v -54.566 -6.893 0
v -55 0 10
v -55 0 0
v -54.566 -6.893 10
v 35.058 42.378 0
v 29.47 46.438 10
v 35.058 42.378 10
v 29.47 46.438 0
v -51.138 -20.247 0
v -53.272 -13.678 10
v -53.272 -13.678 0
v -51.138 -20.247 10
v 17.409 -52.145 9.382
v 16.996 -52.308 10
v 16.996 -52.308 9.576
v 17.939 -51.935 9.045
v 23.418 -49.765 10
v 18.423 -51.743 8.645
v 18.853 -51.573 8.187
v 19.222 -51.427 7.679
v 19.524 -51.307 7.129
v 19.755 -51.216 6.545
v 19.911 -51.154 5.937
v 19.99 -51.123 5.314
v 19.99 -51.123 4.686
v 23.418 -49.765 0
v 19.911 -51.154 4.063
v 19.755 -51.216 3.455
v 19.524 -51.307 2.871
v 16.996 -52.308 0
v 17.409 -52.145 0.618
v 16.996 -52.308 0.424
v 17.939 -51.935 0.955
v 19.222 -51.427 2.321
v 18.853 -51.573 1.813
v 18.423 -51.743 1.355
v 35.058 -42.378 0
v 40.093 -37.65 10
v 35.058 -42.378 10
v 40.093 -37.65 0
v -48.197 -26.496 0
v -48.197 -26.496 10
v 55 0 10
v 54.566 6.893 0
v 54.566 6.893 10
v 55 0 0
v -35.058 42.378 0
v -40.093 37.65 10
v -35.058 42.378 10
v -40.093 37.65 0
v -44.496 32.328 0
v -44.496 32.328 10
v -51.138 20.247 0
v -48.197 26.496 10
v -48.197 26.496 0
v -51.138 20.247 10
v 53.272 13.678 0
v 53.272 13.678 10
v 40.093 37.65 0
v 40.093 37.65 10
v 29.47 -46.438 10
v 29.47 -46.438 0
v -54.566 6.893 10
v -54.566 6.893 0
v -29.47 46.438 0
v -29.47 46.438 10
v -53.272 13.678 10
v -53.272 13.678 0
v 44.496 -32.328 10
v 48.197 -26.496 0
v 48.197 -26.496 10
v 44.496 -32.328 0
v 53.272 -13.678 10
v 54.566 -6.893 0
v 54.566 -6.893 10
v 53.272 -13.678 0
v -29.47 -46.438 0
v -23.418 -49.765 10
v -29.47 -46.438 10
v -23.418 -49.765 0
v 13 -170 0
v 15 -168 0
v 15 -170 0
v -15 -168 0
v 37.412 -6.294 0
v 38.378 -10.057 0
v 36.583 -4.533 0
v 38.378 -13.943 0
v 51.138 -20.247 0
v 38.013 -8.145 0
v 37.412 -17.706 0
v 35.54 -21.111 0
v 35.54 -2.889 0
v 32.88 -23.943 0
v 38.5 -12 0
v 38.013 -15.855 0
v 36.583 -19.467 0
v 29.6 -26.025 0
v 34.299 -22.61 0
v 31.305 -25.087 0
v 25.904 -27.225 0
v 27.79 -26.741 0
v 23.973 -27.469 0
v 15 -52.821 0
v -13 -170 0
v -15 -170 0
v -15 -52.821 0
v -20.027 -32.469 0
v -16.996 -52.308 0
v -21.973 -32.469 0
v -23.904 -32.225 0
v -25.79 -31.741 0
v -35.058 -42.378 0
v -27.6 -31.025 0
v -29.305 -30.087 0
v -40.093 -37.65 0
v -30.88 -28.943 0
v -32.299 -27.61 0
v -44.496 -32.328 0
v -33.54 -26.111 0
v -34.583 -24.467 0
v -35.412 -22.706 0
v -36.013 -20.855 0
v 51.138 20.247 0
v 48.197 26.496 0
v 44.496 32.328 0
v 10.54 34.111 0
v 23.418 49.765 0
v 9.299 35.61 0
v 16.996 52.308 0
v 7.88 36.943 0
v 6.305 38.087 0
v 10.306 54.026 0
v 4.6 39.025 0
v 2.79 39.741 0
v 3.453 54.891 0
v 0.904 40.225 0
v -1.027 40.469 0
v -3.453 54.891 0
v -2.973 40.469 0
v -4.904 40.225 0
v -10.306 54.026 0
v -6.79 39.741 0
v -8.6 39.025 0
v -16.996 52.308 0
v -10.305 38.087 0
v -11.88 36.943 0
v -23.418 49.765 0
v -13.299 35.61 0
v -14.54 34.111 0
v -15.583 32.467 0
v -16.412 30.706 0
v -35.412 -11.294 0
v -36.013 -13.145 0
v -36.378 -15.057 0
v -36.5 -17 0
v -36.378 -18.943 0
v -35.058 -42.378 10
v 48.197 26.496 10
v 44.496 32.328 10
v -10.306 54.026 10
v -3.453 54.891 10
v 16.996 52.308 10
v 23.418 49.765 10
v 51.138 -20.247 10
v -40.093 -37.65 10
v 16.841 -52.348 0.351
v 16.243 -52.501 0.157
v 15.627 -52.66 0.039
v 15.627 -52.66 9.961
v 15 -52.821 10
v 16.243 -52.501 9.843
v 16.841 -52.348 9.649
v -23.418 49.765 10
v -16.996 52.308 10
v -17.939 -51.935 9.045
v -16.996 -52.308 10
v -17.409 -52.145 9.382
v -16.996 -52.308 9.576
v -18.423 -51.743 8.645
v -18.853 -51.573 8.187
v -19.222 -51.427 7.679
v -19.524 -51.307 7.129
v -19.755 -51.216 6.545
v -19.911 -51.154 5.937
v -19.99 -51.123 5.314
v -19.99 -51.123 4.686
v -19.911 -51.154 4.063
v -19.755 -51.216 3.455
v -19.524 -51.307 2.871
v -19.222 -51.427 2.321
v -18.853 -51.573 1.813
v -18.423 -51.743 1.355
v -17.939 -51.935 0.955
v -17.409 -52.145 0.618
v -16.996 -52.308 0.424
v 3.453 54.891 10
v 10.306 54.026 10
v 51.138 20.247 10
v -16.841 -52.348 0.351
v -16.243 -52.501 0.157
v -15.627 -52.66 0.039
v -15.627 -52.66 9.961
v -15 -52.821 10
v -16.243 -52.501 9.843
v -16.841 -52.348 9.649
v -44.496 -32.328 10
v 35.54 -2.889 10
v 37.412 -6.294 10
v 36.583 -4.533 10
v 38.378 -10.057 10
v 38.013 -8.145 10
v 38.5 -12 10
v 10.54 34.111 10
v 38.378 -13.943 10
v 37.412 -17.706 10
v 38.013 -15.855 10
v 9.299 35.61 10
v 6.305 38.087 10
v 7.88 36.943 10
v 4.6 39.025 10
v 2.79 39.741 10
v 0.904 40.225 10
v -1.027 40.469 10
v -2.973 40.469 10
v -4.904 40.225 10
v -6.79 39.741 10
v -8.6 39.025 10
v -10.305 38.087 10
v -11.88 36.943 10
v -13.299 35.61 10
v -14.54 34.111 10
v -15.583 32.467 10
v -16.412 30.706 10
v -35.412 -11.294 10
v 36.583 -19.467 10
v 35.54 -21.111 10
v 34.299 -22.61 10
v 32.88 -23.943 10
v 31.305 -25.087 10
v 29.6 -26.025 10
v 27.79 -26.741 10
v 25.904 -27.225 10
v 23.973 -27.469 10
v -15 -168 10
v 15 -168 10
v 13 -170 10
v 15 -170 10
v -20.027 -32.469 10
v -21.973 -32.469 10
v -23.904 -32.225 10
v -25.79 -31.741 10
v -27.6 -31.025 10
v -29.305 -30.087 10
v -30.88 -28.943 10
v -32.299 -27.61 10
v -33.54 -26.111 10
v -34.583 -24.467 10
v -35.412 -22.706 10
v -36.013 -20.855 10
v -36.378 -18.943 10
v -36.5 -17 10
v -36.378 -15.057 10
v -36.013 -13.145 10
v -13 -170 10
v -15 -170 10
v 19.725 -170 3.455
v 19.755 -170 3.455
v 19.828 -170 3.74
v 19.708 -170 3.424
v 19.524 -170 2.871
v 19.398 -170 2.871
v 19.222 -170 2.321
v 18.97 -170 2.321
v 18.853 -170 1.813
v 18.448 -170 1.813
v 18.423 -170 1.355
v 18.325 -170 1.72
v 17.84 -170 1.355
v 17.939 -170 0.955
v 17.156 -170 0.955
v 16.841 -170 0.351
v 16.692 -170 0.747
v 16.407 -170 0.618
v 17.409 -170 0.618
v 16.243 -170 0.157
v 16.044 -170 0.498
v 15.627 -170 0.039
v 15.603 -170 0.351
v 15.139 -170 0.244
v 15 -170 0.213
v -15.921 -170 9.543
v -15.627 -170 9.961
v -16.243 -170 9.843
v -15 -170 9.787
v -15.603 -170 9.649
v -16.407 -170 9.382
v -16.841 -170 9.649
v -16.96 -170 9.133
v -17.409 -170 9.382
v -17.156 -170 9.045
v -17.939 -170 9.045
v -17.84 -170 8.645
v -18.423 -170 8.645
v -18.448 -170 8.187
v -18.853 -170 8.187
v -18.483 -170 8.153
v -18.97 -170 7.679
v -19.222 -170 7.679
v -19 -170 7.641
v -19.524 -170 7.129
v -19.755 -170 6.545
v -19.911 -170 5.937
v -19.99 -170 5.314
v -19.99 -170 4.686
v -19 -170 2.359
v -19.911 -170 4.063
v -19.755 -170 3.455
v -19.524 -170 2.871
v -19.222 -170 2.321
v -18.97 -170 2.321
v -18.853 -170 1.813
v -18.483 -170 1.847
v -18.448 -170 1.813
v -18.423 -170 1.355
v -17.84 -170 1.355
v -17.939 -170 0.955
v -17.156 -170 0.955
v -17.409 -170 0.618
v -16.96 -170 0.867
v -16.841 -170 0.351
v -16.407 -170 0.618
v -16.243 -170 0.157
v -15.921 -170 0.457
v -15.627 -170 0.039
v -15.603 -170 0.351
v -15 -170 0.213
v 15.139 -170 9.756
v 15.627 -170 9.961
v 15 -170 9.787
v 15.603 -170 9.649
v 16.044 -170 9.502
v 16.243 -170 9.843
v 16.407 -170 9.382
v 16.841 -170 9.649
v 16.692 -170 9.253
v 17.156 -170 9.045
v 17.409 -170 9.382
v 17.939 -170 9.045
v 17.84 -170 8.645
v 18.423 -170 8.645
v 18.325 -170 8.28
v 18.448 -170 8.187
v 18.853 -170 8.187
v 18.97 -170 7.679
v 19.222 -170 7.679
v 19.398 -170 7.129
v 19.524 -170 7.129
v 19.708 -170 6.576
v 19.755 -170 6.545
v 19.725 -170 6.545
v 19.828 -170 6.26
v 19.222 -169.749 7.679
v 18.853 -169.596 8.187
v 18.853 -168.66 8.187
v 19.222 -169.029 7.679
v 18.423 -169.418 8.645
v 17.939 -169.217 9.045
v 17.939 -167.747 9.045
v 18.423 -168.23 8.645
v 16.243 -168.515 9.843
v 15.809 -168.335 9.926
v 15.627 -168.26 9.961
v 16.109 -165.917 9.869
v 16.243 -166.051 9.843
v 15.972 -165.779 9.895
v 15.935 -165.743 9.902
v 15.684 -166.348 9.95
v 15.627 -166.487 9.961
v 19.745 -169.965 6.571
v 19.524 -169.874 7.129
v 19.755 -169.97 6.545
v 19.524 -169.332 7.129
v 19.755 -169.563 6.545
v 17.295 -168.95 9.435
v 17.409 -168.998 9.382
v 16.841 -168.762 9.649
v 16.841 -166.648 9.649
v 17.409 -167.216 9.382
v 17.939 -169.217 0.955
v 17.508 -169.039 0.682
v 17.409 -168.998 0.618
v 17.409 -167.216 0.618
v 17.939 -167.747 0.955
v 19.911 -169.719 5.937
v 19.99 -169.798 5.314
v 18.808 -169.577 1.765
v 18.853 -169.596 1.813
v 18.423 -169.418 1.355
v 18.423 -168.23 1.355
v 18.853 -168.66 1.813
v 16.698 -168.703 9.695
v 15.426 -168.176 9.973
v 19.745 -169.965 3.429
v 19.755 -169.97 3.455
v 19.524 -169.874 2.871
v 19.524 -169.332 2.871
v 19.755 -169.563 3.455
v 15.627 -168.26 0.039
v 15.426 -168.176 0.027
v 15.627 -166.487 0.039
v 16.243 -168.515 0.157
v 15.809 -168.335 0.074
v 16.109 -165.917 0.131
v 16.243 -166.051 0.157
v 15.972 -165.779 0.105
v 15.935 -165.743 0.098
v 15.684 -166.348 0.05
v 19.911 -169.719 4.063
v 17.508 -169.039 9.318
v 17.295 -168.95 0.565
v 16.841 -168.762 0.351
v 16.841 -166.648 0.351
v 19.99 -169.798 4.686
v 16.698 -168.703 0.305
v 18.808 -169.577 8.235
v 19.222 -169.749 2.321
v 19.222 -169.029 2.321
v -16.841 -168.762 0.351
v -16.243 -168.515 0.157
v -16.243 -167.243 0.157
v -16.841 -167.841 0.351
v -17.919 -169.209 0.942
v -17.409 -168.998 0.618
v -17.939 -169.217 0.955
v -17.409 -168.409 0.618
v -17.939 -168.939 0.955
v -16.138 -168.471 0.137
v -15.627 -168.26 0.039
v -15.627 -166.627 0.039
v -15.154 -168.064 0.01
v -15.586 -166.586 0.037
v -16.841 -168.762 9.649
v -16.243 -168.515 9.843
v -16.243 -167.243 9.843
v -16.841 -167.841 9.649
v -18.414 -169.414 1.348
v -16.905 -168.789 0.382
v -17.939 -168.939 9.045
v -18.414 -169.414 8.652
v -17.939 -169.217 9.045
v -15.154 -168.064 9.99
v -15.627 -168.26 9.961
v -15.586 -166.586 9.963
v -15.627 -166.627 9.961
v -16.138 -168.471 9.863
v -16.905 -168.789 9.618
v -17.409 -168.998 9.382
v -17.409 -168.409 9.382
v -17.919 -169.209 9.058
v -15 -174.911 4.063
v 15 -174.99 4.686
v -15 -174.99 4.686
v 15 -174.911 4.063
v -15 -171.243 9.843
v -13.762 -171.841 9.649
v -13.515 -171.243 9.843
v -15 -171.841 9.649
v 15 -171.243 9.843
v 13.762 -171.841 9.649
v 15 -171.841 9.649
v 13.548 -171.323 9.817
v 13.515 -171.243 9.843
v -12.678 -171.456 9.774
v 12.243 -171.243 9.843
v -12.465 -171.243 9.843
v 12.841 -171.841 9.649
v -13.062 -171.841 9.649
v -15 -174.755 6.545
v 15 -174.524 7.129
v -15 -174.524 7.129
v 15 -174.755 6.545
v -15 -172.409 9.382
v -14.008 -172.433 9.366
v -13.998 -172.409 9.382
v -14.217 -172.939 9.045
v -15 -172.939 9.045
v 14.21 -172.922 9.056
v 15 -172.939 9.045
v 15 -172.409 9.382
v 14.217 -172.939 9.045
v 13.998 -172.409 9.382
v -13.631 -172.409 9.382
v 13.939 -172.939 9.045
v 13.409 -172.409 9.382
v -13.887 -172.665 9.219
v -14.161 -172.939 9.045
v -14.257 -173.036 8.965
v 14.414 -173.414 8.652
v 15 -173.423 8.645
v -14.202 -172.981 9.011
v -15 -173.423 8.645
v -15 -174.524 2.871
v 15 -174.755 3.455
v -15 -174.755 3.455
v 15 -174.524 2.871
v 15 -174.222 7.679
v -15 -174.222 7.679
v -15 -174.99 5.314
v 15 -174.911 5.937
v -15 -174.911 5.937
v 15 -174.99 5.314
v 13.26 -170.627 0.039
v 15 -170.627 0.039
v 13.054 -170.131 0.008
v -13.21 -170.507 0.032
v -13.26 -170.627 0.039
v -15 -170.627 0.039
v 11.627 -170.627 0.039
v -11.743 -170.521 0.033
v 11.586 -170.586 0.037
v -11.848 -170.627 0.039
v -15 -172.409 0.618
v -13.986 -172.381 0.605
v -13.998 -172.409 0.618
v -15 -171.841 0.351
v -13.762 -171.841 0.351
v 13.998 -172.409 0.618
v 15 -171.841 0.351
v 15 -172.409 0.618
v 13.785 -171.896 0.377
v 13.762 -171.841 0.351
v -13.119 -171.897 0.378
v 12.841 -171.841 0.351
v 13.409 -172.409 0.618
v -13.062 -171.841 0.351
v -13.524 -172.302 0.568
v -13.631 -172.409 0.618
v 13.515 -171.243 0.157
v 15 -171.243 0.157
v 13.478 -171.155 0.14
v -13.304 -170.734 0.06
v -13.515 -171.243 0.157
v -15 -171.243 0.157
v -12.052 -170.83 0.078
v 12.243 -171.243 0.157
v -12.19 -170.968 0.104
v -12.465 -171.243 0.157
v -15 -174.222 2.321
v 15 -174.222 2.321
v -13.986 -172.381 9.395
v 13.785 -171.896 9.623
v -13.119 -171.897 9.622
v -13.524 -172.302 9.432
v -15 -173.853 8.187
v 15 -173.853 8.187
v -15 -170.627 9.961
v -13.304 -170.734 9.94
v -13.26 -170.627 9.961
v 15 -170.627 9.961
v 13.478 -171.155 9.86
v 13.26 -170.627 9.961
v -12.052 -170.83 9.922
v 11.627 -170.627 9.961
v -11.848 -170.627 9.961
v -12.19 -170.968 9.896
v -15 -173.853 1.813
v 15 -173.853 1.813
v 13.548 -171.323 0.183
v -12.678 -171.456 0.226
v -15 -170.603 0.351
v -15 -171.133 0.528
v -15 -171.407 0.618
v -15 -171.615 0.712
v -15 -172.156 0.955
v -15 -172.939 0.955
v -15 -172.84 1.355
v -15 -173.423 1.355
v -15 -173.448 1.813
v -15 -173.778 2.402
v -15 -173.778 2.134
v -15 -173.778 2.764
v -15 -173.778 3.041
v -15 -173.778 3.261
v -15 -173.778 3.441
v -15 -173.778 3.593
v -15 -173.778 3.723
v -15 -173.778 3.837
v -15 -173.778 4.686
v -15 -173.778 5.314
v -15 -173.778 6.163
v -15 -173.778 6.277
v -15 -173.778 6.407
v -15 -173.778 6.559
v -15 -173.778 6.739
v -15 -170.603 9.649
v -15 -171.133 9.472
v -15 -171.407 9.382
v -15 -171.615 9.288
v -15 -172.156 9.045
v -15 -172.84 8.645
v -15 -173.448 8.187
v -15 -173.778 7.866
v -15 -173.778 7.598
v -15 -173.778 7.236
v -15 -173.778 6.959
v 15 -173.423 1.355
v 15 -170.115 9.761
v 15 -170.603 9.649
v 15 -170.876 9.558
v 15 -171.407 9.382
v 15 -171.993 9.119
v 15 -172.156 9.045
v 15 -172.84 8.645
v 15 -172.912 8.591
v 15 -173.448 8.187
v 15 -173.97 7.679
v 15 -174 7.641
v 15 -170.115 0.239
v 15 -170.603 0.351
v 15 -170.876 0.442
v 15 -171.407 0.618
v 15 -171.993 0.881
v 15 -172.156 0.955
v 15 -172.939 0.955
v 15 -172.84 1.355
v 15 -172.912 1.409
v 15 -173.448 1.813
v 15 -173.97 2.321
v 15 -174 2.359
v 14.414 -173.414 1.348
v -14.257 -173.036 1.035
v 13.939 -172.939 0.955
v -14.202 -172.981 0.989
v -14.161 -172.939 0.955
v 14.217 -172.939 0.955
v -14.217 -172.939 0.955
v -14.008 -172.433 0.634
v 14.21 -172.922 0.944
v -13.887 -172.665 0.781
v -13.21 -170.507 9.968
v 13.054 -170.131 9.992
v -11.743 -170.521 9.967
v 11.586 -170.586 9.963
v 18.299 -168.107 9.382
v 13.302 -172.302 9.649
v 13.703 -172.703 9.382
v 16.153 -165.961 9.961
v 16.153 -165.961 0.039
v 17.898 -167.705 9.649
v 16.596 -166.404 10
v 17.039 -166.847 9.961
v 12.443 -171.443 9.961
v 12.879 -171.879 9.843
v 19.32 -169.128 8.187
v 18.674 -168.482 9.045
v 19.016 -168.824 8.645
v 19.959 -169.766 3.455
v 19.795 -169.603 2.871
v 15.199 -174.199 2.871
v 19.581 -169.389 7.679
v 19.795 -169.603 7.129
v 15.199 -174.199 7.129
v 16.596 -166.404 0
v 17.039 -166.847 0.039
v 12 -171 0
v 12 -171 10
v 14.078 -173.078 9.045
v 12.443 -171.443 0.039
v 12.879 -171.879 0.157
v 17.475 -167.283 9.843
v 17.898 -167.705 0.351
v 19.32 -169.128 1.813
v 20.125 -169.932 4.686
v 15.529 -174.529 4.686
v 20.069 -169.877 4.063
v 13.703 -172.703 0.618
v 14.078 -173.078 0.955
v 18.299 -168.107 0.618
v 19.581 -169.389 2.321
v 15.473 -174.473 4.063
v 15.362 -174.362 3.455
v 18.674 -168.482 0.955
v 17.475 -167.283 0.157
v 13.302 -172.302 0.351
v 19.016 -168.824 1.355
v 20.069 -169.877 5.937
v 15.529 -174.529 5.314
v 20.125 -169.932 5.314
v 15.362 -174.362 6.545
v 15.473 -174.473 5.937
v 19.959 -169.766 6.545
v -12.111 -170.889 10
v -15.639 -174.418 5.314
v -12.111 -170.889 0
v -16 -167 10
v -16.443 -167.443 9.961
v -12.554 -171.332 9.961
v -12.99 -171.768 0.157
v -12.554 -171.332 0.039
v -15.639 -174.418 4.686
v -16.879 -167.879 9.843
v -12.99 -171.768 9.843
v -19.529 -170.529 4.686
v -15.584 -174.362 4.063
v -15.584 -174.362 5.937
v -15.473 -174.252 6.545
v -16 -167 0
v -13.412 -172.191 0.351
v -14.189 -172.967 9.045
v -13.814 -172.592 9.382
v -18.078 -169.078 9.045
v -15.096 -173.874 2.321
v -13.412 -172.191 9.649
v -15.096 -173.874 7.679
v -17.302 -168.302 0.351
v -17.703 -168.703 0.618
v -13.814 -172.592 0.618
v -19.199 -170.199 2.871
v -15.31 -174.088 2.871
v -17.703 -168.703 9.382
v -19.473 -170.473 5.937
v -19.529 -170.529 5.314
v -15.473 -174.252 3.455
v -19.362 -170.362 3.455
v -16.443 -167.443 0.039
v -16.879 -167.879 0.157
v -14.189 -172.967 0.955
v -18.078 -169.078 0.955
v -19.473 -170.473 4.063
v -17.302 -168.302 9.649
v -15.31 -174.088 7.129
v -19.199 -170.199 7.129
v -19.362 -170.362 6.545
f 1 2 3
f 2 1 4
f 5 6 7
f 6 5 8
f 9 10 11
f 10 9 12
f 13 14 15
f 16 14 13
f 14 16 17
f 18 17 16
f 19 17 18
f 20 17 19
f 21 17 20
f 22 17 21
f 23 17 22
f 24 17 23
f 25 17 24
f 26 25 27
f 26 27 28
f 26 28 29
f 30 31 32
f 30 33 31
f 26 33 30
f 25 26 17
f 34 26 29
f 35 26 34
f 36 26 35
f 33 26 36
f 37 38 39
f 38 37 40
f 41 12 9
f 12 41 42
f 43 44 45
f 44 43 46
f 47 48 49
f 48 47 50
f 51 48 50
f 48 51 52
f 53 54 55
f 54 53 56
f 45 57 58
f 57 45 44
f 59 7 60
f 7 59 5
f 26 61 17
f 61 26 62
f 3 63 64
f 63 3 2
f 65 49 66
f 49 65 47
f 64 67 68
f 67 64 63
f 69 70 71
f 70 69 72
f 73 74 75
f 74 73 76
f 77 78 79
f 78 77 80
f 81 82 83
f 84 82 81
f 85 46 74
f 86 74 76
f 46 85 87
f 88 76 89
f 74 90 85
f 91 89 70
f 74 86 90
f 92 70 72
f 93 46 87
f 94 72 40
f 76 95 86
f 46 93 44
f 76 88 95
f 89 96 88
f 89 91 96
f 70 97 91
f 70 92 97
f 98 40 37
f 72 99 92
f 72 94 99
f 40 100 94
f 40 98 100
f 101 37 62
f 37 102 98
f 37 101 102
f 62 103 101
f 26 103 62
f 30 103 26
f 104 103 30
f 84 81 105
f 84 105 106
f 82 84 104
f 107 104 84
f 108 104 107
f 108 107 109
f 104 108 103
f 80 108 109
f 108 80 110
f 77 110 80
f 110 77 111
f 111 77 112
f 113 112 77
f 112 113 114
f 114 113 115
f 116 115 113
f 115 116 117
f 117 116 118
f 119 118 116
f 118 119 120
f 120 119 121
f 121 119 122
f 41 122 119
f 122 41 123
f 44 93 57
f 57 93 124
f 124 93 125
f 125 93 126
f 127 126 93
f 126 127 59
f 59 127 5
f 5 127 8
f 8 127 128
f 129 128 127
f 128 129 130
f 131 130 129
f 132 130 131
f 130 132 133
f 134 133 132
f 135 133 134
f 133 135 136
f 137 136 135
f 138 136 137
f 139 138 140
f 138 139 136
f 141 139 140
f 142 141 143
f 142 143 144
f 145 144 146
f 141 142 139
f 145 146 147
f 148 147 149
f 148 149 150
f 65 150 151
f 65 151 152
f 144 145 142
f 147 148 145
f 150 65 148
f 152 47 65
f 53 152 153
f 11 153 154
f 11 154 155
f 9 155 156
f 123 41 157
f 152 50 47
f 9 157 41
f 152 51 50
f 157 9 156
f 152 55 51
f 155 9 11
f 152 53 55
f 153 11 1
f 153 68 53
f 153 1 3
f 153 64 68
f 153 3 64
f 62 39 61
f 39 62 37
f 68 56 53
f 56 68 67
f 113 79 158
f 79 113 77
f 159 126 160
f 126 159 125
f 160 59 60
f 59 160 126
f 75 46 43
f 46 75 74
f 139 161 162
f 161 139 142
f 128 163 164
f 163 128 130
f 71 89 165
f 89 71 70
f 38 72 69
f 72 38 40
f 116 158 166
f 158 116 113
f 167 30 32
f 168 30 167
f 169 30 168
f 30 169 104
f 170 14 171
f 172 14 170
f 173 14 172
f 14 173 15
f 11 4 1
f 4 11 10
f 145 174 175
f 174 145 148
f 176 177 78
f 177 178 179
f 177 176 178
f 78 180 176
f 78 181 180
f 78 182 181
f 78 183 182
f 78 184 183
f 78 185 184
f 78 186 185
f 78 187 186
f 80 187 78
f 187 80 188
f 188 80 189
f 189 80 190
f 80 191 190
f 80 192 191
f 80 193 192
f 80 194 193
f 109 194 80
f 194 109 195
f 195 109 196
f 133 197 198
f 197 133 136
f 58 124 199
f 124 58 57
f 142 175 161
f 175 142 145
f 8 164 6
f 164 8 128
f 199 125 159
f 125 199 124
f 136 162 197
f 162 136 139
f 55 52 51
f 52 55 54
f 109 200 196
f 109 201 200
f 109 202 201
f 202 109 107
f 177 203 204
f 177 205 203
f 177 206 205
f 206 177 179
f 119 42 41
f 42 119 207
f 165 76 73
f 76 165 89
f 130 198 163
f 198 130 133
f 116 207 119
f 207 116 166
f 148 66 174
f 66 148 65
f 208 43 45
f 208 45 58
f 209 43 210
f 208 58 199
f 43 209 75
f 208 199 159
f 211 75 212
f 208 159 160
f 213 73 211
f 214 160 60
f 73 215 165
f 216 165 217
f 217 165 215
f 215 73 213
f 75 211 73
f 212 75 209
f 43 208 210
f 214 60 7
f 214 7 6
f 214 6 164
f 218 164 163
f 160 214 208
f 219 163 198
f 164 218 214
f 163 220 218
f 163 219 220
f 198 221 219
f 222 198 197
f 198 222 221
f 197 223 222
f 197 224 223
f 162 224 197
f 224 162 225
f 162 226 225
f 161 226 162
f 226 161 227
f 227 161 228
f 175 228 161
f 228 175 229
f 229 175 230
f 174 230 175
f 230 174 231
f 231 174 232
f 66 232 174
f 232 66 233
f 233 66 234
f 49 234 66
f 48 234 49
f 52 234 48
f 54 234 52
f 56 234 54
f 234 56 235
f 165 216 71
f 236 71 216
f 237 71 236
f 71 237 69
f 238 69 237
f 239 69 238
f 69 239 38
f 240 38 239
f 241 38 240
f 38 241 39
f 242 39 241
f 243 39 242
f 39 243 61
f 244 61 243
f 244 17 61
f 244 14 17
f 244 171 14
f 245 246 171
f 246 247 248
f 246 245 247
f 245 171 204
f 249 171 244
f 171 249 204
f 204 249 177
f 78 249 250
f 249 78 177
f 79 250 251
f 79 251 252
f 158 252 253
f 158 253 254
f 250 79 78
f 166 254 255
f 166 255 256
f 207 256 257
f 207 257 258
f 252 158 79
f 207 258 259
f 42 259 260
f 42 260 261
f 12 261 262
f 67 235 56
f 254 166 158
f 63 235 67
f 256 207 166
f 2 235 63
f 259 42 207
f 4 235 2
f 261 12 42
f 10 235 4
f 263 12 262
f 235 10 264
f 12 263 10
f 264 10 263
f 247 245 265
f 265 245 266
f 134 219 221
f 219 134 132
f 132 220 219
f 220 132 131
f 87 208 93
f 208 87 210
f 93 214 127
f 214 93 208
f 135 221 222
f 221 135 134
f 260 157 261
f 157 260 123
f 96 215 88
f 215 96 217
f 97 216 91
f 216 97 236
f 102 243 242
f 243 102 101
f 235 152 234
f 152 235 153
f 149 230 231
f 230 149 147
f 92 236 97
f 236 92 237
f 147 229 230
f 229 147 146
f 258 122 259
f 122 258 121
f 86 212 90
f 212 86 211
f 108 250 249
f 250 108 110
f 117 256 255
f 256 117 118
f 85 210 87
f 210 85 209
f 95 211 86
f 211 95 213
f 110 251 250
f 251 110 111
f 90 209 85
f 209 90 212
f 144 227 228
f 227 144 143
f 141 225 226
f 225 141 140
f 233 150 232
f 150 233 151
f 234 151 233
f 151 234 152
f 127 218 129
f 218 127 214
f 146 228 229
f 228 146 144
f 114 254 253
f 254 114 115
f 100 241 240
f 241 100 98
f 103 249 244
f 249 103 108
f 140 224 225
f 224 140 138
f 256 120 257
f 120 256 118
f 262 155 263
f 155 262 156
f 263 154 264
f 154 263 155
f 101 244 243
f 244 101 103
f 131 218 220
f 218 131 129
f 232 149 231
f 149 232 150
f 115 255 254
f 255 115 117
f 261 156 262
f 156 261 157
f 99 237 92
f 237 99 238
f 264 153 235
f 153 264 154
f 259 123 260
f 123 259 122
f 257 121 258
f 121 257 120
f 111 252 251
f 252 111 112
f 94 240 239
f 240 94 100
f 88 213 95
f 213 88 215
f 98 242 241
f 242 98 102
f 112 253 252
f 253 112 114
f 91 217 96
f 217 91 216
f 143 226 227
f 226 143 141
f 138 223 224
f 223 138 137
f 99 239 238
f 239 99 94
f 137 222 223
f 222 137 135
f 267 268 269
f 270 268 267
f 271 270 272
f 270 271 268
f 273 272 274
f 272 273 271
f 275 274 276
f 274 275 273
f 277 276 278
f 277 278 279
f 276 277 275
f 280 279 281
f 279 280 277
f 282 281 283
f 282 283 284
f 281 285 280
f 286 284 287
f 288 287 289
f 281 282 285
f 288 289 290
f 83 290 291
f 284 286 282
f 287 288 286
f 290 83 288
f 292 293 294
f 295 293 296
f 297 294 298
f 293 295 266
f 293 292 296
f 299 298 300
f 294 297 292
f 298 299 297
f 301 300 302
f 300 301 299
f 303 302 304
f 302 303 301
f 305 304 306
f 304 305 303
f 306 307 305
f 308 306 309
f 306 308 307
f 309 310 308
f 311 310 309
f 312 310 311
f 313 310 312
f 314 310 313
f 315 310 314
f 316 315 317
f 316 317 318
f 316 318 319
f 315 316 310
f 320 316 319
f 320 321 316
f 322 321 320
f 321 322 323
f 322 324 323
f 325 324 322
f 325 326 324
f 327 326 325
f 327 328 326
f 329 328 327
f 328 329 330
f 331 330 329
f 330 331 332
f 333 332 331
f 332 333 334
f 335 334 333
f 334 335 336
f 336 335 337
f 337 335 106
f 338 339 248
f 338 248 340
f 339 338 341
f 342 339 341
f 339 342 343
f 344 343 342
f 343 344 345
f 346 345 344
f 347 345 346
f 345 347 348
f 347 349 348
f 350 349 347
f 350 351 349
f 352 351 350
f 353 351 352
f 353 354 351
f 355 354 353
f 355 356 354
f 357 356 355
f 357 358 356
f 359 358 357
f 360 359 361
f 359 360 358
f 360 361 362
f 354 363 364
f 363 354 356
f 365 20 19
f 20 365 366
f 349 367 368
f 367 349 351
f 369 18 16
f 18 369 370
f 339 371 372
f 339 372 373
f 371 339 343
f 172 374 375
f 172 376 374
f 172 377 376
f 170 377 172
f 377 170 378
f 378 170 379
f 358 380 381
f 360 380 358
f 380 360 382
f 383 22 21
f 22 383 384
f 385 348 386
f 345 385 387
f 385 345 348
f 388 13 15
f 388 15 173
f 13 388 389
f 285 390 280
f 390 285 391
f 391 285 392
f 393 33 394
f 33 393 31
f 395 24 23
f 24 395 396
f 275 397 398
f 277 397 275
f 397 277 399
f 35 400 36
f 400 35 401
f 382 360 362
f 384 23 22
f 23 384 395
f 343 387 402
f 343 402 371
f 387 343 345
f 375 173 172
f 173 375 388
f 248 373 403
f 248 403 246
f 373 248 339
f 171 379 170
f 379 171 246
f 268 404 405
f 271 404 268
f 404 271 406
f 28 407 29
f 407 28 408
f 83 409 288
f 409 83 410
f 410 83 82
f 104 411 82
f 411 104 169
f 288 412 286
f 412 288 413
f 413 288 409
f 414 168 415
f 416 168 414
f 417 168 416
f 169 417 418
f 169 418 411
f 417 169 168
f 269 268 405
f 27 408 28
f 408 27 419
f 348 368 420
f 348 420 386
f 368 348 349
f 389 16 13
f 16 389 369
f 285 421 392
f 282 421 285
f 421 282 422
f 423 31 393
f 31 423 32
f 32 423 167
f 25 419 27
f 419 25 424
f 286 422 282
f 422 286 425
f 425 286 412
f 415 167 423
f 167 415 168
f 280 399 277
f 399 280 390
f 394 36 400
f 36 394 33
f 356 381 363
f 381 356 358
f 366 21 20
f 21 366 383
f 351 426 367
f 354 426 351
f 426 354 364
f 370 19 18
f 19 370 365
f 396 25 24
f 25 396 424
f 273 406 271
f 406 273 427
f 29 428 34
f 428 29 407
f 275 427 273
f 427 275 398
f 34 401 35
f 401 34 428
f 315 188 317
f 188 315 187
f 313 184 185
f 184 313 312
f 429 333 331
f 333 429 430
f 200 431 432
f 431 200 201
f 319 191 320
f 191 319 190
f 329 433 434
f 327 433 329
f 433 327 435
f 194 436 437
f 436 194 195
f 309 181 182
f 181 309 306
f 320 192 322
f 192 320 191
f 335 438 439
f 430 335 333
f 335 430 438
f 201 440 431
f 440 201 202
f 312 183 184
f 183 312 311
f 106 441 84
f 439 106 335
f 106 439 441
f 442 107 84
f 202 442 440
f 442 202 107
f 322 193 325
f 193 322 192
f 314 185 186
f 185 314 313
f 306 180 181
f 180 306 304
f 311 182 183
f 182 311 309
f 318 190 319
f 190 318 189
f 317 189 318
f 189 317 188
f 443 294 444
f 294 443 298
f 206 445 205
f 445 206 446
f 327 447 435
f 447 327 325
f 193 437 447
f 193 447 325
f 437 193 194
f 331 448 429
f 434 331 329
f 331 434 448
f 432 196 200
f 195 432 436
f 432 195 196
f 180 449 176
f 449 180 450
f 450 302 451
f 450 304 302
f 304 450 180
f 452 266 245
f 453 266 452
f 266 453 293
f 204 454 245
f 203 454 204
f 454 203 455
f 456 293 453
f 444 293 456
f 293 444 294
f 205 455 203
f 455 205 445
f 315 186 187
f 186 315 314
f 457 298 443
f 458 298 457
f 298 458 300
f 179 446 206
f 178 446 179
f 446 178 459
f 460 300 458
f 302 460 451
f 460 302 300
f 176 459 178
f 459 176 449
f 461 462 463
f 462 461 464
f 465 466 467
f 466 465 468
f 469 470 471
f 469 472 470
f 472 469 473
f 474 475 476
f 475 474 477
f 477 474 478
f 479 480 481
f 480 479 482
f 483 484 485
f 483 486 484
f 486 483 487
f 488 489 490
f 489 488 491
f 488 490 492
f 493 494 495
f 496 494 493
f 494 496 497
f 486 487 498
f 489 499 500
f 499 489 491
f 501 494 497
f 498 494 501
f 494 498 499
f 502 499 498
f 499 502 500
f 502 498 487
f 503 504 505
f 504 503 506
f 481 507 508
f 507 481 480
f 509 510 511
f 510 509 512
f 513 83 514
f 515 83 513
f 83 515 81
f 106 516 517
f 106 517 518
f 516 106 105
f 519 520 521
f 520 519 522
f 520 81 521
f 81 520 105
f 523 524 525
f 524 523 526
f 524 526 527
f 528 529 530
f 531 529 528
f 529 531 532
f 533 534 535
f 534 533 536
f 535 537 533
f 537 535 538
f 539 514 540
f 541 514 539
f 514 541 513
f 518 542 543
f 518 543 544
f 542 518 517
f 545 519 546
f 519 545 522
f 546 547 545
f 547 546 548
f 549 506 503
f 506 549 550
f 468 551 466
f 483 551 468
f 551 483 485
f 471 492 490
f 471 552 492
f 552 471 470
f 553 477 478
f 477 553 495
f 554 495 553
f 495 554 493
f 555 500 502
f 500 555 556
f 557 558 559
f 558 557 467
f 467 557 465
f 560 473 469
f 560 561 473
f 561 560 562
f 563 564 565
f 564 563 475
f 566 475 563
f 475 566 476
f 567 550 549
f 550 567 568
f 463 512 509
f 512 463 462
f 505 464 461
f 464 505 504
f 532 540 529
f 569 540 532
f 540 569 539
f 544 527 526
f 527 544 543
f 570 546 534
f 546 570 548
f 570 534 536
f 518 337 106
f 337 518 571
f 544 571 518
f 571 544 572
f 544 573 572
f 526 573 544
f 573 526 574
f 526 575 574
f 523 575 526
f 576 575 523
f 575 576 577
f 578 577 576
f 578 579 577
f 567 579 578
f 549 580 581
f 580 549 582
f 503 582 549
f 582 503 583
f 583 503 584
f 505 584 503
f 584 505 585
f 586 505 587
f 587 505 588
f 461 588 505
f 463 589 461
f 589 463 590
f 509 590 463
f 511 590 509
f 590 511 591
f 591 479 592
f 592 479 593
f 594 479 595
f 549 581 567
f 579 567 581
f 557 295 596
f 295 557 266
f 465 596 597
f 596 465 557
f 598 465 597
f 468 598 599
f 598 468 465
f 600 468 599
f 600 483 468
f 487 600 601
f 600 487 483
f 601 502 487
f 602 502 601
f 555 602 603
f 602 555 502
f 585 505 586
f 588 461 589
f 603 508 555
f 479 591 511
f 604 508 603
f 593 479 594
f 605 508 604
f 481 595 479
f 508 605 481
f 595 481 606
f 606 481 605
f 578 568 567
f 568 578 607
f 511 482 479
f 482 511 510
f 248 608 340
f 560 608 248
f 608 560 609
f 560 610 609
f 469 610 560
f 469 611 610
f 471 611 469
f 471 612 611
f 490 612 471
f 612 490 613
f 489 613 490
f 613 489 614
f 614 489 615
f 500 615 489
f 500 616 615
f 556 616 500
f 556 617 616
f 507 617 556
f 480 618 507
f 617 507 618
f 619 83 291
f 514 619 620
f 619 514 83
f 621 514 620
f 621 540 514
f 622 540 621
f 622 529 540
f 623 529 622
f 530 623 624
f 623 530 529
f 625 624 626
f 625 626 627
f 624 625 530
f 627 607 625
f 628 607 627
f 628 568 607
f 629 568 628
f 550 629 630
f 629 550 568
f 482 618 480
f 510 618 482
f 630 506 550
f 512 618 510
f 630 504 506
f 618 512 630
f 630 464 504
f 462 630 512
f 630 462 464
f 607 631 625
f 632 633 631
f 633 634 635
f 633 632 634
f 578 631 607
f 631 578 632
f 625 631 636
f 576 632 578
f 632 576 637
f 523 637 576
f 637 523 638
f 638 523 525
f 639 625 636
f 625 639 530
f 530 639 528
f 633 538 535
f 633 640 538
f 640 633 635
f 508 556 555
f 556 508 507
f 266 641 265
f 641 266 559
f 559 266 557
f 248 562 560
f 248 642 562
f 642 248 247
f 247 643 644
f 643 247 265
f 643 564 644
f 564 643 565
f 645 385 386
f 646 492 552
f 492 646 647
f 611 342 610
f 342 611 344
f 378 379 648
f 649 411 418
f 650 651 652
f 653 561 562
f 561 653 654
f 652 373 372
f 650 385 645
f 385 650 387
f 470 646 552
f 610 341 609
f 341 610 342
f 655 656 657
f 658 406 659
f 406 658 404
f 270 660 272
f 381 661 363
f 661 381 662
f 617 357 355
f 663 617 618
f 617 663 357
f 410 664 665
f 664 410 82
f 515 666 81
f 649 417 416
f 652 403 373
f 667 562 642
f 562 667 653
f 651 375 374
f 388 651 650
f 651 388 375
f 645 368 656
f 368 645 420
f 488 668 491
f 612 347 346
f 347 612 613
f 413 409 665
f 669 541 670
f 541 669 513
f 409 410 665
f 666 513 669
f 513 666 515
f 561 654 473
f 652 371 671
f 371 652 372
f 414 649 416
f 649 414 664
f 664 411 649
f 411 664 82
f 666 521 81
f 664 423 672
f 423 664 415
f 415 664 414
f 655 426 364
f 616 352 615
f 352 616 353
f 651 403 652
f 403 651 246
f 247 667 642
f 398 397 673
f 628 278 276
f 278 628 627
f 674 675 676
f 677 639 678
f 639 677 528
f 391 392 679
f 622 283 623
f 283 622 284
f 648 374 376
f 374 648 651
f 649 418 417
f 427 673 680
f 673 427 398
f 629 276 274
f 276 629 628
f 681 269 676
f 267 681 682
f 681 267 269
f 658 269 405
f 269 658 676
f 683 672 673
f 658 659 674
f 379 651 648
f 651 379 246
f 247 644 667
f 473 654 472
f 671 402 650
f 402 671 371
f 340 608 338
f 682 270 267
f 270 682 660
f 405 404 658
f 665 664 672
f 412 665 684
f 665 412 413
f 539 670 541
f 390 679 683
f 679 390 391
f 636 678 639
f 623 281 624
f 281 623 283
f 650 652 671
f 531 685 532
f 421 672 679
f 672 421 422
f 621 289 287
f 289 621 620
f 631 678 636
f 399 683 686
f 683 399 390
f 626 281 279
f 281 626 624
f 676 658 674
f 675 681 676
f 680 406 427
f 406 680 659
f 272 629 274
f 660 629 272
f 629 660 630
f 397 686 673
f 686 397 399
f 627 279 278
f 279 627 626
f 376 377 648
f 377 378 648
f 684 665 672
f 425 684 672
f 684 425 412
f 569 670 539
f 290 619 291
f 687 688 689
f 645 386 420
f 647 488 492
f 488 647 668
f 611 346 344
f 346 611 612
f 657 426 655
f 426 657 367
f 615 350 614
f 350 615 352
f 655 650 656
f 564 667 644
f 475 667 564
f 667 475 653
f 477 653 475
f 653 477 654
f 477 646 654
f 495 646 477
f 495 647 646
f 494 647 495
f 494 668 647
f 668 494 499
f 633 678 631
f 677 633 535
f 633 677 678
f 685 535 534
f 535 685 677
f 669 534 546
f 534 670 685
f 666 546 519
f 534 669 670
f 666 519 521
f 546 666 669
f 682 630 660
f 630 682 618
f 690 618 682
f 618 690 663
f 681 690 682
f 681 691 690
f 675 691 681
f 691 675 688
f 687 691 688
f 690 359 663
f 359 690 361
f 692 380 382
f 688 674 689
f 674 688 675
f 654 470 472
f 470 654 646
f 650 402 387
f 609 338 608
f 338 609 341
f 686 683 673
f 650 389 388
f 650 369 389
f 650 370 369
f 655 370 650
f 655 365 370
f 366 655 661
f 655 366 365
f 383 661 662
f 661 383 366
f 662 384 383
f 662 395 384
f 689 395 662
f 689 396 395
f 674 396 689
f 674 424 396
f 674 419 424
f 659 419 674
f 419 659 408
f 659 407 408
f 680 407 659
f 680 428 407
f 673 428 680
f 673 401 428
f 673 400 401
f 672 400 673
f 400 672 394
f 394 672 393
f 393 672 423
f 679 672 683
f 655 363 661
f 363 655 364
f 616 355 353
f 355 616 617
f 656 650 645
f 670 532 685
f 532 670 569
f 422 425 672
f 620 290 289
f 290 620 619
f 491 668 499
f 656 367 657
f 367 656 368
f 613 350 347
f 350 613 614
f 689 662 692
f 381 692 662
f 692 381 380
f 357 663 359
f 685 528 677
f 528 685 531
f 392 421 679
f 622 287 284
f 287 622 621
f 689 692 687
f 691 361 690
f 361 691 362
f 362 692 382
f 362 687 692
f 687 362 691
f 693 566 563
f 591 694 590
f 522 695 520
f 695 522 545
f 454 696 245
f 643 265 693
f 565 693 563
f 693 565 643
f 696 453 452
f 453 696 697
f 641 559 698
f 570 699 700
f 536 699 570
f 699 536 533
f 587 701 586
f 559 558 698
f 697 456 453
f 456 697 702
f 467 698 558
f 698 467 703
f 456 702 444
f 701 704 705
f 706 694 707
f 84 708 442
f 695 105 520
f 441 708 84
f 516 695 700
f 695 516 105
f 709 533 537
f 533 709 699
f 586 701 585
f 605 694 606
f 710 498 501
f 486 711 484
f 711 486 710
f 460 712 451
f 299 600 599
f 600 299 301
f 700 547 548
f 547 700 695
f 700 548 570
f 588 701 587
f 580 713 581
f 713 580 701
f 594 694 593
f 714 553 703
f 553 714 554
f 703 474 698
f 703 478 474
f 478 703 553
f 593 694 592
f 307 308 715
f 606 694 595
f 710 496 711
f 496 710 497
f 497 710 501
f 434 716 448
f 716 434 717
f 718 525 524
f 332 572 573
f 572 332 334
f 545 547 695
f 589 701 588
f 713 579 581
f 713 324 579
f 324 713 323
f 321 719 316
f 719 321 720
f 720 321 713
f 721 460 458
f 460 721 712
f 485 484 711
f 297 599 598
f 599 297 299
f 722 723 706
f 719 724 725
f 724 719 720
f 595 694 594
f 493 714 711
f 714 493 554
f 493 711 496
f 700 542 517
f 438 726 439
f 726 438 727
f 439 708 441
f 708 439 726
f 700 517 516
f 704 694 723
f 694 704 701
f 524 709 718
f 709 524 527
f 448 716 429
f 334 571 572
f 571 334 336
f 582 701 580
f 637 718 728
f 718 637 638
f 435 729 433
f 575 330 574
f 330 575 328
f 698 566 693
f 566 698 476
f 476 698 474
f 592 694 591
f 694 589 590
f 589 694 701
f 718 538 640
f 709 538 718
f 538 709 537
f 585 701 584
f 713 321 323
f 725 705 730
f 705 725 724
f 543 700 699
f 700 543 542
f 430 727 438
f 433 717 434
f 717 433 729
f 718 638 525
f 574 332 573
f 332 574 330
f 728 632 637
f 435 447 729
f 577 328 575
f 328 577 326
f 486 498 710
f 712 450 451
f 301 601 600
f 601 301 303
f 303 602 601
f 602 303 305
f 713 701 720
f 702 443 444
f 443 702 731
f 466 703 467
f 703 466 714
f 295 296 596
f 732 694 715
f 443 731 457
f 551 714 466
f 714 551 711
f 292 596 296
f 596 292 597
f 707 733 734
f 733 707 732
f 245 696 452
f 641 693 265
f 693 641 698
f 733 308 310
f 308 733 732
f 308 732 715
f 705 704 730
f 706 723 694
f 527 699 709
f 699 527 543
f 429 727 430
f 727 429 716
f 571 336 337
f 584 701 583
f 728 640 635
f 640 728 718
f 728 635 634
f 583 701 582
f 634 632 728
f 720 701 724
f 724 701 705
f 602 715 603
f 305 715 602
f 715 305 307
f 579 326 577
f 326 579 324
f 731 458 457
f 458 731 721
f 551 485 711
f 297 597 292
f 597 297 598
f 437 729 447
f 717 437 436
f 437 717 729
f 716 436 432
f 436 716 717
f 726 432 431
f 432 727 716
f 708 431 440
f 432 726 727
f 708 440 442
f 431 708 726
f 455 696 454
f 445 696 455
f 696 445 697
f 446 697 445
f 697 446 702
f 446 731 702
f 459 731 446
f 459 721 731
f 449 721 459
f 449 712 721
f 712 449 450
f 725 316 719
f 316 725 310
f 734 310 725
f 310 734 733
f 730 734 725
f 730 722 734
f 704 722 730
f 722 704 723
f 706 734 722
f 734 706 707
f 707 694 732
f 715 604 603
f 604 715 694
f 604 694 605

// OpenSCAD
$fn=50;

dia = 110;
tooldia = 31;
model = 0;
height = 10;
curved = 1;

if (model)
{
    %translate([-34, -65, -20]) 
        rotate([0, 0, 20])
            import("knob.stl");
}
// Simpler code with same result
module roundedcube2(xx, yy, height, radius)
{
    translate([0,0,height/2])
    hull()
    {
        translate([radius,radius,0])
        cylinder(height,radius,radius,true);

        translate([xx-radius,radius,0])
        cylinder(height,radius,radius,true);

        translate([xx-radius,yy-radius,0])
        cylinder(height,radius,radius,true);

        translate([radius,yy-radius,0])
        cylinder(height,radius,radius,true);
    }
}

module tool()
{
    difference()
    {
        cylinder(h=height, d=dia);
        translate([-1, 3, 0])
        {
            hull()
            {
                translate([-1, 22, -1]) cylinder(h=height+2, d=tooldia);
                translate([24, -15, -1]) cylinder(h=height+2, d=tooldia);
                translate([-20,-20, -1]) cylinder(h=height+2, d=tooldia);
            }
        }
    }
}
module handle()
{
    translate([-15, -170, 0]) cube([30, 120, 10]);
    translate([15, -170, 5]) rotate([0, 90, 90]) cylinder(h=120, d=10);
    translate([-15, -170, 5]) rotate([0, 90, 90]) cylinder(h=120, d=10);
    translate([-15, -170, 5]) rotate([0, 90, 0]) cylinder(h=30, d=10);
    translate([12, -171, 5]) rotate([0, 90, 45]) cylinder(h=6.5, d=10);
    translate([-16, -167, 5]) rotate([0, 90, -45]) cylinder(h=5.5, d=10);
    //translate([0, -170, 0]) cylinder(h=10, d=30);
}

tool();
handle();
